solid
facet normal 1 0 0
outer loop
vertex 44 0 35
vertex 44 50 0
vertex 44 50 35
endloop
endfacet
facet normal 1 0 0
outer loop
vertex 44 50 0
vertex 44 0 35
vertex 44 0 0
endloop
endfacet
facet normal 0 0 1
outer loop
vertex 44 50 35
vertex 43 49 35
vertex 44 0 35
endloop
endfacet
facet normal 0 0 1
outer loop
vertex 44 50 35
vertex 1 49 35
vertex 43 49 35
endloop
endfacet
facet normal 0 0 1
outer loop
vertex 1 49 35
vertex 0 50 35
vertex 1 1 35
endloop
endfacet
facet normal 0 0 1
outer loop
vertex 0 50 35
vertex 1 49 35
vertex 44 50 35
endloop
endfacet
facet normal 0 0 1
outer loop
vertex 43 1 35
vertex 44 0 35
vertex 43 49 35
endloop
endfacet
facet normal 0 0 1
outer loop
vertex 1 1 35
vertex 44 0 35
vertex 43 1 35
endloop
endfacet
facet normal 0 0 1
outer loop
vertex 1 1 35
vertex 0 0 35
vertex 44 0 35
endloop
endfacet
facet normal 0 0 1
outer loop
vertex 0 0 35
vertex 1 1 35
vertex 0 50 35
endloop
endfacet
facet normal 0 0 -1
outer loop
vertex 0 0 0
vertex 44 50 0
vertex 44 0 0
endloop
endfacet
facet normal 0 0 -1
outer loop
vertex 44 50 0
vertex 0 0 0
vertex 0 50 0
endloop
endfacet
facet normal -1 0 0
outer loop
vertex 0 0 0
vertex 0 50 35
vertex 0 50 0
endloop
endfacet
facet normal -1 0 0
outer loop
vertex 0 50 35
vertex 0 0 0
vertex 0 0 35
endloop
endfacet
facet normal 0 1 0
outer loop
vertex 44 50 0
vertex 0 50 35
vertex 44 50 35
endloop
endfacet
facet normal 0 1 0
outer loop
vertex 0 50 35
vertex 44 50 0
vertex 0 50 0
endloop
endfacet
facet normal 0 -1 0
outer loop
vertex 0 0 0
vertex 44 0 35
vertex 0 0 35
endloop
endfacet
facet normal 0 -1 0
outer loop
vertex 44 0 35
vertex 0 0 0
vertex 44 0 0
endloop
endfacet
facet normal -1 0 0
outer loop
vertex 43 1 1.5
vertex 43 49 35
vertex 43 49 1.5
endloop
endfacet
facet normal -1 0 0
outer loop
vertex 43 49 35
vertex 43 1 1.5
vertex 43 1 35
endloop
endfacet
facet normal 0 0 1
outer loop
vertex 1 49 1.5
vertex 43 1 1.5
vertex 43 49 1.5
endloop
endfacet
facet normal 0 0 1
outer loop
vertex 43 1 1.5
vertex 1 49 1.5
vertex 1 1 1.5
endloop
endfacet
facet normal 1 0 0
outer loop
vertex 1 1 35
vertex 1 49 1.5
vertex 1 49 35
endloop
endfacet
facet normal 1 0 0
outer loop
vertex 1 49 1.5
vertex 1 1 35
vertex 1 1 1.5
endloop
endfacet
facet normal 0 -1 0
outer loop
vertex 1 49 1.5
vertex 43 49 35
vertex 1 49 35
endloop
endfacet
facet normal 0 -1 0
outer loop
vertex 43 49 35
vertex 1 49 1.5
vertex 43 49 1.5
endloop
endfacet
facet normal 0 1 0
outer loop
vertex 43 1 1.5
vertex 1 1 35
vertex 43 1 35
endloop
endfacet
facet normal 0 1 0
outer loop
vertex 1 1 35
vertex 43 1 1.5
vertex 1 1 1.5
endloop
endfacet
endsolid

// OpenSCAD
include <boardgame_insert_toolkit_lib.2.scad>;

// determines whether lids are output.
g_b_print_lid = true;

// determines whether boxes are output.
g_b_print_box = true;

// Focus on one box
g_isolated_print_box = "";

// Used to visualize how all of the boxes fit together.
g_b_visualization = false;

// this is the outer wall thickness.
// Default = 1.5mm
g_wall_thickness = 1.5;

// The tolerance value is extra space put between planes of the lid and box that fit together.
// Increase the tolerance to loosen the fit and decrease it to tighten it.
//
// Note that the tolerance is applied exclusively to the lid.
// So if the lid is too tight or too loose, change this value ( up for looser fit, down for tighter fit ) and
// you only need to reprint the lid.
//
// The exception is the stackable box, where the bottom of the box is the lid of the box below,
// in which case the tolerance also affects that box bottom.
//
g_tolerance = 0.15;

// This adjusts the position of the lid detents downward.
// The larger the value, the bigger the gap between the lid and the box.
g_tolerance_detents_pos = 0.1;

// using aw prefix to avoid collisions with globals
aw_wall_thickness = 1.0;
aw_size_x = 44.0; // arbitrary size for a particular application
aw_size_y = 50.0; // arbitrary
aw_size_z = 35.0; // half height of 70mm tall box

data =
  [
    [ "simple box",
      [
        [
          BOX_SIZE_XYZ,
          [aw_size_x, aw_size_y, aw_size_z]
        ],
        [
          BOX_NO_LID_B, t
        ],
        [
          BOX_COMPONENT,
          [
            [
              CMP_COMPARTMENT_SIZE_XYZ,
              [
                aw_size_x - 2 * aw_wall_thickness,
                aw_size_y - 2 * aw_wall_thickness,
                aw_size_z - aw_wall_thickness
              ]
            ]
          ]
        ],
      ]
    ],
  ];

MakeAll();
